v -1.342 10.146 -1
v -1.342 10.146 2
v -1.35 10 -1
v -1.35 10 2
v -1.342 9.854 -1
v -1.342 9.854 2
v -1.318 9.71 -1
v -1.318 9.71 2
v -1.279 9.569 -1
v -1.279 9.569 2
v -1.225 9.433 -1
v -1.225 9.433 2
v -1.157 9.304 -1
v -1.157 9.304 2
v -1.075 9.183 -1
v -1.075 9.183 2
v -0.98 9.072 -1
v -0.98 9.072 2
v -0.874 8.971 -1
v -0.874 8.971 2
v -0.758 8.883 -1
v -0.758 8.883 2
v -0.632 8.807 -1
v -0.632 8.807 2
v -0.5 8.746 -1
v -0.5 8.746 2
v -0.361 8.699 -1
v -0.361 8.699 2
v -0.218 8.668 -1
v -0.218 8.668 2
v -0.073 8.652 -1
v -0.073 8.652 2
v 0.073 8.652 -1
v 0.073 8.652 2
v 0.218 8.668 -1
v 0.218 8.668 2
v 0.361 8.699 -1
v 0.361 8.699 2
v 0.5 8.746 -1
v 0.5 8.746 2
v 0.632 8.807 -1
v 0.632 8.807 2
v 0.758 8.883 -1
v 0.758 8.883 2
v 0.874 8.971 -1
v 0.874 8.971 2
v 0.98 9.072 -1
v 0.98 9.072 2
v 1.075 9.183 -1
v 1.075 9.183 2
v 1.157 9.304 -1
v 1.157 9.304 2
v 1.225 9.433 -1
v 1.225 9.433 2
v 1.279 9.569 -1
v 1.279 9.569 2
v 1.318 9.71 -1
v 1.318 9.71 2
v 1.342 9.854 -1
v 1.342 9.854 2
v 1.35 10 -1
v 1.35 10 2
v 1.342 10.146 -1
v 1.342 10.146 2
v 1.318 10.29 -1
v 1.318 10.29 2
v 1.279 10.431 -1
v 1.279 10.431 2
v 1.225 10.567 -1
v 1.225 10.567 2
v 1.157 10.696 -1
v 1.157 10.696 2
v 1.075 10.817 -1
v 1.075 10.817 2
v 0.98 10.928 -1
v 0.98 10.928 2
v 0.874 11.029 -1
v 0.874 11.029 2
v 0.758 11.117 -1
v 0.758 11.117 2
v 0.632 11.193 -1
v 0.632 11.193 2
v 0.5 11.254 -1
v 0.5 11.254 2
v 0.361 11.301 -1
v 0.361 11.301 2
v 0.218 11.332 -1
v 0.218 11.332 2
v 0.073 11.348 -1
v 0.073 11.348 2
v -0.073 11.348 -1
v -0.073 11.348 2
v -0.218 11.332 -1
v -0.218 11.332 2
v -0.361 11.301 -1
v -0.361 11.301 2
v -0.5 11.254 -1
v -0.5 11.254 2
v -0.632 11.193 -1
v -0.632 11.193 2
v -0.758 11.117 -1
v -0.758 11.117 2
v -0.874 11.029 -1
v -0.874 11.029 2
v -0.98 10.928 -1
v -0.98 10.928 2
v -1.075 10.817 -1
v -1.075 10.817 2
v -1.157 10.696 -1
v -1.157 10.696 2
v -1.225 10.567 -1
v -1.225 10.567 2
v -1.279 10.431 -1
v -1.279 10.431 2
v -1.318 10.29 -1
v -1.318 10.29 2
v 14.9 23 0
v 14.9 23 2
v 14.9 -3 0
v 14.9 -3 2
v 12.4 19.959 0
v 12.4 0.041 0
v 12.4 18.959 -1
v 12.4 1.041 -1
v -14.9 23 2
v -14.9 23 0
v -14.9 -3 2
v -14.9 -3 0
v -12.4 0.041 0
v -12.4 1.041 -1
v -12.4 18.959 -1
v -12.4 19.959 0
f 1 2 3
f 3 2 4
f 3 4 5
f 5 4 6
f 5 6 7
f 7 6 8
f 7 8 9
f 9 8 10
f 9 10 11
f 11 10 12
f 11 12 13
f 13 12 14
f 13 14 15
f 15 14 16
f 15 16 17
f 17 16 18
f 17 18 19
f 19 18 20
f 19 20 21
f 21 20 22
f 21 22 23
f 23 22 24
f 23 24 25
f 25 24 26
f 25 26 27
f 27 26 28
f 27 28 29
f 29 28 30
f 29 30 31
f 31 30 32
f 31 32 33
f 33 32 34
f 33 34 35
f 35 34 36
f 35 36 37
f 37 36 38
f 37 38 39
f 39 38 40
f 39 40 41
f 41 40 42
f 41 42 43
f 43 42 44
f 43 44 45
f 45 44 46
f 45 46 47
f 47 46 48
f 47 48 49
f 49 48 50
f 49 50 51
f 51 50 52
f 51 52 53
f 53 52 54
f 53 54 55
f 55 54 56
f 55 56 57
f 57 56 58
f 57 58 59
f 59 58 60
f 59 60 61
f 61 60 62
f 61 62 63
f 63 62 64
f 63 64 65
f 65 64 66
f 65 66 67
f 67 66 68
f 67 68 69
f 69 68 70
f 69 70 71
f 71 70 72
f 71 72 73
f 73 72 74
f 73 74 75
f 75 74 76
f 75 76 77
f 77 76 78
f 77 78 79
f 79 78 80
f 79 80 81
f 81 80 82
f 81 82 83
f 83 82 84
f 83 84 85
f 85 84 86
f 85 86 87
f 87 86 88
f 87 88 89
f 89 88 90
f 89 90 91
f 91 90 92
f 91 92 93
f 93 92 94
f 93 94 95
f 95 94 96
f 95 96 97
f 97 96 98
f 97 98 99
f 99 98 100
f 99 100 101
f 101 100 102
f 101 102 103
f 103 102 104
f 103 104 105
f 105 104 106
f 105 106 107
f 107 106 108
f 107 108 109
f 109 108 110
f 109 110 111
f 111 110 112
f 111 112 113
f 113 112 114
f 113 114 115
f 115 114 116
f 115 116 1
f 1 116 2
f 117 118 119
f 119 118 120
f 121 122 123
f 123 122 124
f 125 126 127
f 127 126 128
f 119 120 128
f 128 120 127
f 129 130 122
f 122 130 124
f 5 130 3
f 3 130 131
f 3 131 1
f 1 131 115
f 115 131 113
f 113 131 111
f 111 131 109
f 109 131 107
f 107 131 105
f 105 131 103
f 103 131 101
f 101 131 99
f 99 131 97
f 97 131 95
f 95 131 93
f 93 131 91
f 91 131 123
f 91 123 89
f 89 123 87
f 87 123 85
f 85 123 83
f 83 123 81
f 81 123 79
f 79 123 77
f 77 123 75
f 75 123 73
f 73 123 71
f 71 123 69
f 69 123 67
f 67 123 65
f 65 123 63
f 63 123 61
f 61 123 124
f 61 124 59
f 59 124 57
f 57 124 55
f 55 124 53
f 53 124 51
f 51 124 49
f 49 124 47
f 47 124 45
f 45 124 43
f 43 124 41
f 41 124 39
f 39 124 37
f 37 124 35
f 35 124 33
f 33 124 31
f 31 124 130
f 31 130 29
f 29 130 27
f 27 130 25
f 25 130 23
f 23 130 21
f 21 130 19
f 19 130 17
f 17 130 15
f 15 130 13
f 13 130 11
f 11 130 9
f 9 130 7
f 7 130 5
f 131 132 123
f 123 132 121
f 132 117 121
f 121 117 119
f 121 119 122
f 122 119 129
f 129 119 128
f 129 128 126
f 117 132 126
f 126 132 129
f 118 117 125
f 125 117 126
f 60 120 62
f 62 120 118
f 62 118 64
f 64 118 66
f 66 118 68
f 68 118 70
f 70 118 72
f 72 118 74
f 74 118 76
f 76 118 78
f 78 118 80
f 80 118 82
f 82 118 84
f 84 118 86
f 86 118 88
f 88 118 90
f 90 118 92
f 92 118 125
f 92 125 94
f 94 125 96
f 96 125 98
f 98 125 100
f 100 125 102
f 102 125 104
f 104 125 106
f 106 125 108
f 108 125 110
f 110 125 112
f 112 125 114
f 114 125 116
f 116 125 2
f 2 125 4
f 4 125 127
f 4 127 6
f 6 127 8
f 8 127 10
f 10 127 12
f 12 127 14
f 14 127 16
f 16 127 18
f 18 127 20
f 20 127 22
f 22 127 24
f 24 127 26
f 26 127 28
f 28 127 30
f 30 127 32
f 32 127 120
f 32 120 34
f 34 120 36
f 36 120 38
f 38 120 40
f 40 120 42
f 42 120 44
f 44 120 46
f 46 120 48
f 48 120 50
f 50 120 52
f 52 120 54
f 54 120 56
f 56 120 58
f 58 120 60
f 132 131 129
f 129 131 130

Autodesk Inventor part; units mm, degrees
ref_plane "YZ Plane" through (0, 0, 0) normal (1, 0, 0) x (0, 1, 0)
ref_plane "Work Plane1" through (-12.4, -4.3, -12.7) normal (1, 0, 0) x (0, 1, 0)
sketch "Sketch1" plane through (0, 0, 0) normal (1, 0, 0) x (0, 1, 0)
  line L0 (16, -9.5) -> (16, -7.1) projected
  line L1 (16, -9.5) -> (4, -9.5) projected
  line L2 (4, -9.5) -> (4, -7.1) projected
  line L3 (-3, -0.1) -> (4, -7.1) projected
  line L4 (23, -0.1) -> (-3, -0.1) construction
  line L5 (16, -7.1) -> (23, -0.1) projected
  line L6 (13, -7.1) -> (20, -0.1) projected
  line L7 (0, -0.1) -> (7, -7.1) projected
  line L8 (0.0414, 0) -> (1.0414, -1)
  line L9 (0.0414, 0) -> (-3, 0)
  line L10 (-3, 0) -> (-3, 2)
  line L11 (-3, 2) -> (10, 2)
  line L12 (10, -9.5) -> (10, 0) construction
  line L13 (1.0414, -1) -> (10, -1)
  line L14 (19.9586, 0) -> (18.9586, -1)
  line L15 (19.9586, 0) -> (23, 0)
  line L16 (23, 0) -> (23, 2)
  line L17 (23, 2) -> (10, 2)
  line L18 (18.9586, -1) -> (10, -1)
  point P0 (0, 0)
  dimension "d0" = 0.1
  dimension "d1" = 0.1
  dimension "d2" = 2
  dimension "d3" = 3
extrude "Extrusion1" add sketch "Sketch1" against normal up to surface (12.4 mm away)
sketch "Sketch2" plane through (-12.4, -3, 2) normal (-1, 0, 0) x (0, 0, 1)
  line L0 (-3, 21.9586) -> (-3, 4.0414) projected
  line L1 (-3, 4.0414) -> (-2, 3.0414) projected
  line L2 (-2, 3.0414) -> (-2, 0) projected
  line L3 (-2, 0) -> (0, 0) projected
  line L4 (0, 0) -> (0, 26) projected
  line L5 (0, 26) -> (-2, 26) projected
  line L6 (-2, 26) -> (-2, 22.9586) projected
  line L7 (-2, 22.9586) -> (-3, 21.9586) projected
  line L8 (0, 26) -> (0, 0) projected
  line L9 (-2, 0) -> (0, 0)
  line L10 (0, 0) -> (0, 26)
  line L11 (0, 26) -> (-2, 26)
  line L12 (-2, 26) -> (-2, 0)
  point P0 (-2, 3)
  point P1 (-2, 3.0414)
ref_plane "Work Plane2" through (-14.9, -3, -9.5) normal (-1, 0, 0) x (0, 0, 1)
extrude "Extrusion2" add sketch "Sketch2" along normal up to surface (2.5 mm away) contours L6 L5 L4 L3 L2 L12
mirror "Mirror1" about plane through (0, 10, 0.5) normal (1, 0, 0) of "Extrusion2", "Extrusion1"
sketch "Sketch3" plane through (-14.9, -3, 2) normal (0, 0, 1) x (1, 0, 0)
  line L0 (0, 0) -> (29.8, 0) projected
  line L1 (29.8, 26) -> (29.8, 0) projected
  line L2 (0, 26) -> (29.8, 26) projected
  line L3 (0, 26) -> (0, 0) projected
  circle A0 centre (14.9, 13) radius 1.35
  point P0 (14.9, 3)
  point P1 (0, 13)
  point P2 (14.9, 26)
  dimension "d8" = 2.7
extrude "Extrusion3" cut sketch "Sketch3" against normal through all contours A0
properties part number "hopper lid"
